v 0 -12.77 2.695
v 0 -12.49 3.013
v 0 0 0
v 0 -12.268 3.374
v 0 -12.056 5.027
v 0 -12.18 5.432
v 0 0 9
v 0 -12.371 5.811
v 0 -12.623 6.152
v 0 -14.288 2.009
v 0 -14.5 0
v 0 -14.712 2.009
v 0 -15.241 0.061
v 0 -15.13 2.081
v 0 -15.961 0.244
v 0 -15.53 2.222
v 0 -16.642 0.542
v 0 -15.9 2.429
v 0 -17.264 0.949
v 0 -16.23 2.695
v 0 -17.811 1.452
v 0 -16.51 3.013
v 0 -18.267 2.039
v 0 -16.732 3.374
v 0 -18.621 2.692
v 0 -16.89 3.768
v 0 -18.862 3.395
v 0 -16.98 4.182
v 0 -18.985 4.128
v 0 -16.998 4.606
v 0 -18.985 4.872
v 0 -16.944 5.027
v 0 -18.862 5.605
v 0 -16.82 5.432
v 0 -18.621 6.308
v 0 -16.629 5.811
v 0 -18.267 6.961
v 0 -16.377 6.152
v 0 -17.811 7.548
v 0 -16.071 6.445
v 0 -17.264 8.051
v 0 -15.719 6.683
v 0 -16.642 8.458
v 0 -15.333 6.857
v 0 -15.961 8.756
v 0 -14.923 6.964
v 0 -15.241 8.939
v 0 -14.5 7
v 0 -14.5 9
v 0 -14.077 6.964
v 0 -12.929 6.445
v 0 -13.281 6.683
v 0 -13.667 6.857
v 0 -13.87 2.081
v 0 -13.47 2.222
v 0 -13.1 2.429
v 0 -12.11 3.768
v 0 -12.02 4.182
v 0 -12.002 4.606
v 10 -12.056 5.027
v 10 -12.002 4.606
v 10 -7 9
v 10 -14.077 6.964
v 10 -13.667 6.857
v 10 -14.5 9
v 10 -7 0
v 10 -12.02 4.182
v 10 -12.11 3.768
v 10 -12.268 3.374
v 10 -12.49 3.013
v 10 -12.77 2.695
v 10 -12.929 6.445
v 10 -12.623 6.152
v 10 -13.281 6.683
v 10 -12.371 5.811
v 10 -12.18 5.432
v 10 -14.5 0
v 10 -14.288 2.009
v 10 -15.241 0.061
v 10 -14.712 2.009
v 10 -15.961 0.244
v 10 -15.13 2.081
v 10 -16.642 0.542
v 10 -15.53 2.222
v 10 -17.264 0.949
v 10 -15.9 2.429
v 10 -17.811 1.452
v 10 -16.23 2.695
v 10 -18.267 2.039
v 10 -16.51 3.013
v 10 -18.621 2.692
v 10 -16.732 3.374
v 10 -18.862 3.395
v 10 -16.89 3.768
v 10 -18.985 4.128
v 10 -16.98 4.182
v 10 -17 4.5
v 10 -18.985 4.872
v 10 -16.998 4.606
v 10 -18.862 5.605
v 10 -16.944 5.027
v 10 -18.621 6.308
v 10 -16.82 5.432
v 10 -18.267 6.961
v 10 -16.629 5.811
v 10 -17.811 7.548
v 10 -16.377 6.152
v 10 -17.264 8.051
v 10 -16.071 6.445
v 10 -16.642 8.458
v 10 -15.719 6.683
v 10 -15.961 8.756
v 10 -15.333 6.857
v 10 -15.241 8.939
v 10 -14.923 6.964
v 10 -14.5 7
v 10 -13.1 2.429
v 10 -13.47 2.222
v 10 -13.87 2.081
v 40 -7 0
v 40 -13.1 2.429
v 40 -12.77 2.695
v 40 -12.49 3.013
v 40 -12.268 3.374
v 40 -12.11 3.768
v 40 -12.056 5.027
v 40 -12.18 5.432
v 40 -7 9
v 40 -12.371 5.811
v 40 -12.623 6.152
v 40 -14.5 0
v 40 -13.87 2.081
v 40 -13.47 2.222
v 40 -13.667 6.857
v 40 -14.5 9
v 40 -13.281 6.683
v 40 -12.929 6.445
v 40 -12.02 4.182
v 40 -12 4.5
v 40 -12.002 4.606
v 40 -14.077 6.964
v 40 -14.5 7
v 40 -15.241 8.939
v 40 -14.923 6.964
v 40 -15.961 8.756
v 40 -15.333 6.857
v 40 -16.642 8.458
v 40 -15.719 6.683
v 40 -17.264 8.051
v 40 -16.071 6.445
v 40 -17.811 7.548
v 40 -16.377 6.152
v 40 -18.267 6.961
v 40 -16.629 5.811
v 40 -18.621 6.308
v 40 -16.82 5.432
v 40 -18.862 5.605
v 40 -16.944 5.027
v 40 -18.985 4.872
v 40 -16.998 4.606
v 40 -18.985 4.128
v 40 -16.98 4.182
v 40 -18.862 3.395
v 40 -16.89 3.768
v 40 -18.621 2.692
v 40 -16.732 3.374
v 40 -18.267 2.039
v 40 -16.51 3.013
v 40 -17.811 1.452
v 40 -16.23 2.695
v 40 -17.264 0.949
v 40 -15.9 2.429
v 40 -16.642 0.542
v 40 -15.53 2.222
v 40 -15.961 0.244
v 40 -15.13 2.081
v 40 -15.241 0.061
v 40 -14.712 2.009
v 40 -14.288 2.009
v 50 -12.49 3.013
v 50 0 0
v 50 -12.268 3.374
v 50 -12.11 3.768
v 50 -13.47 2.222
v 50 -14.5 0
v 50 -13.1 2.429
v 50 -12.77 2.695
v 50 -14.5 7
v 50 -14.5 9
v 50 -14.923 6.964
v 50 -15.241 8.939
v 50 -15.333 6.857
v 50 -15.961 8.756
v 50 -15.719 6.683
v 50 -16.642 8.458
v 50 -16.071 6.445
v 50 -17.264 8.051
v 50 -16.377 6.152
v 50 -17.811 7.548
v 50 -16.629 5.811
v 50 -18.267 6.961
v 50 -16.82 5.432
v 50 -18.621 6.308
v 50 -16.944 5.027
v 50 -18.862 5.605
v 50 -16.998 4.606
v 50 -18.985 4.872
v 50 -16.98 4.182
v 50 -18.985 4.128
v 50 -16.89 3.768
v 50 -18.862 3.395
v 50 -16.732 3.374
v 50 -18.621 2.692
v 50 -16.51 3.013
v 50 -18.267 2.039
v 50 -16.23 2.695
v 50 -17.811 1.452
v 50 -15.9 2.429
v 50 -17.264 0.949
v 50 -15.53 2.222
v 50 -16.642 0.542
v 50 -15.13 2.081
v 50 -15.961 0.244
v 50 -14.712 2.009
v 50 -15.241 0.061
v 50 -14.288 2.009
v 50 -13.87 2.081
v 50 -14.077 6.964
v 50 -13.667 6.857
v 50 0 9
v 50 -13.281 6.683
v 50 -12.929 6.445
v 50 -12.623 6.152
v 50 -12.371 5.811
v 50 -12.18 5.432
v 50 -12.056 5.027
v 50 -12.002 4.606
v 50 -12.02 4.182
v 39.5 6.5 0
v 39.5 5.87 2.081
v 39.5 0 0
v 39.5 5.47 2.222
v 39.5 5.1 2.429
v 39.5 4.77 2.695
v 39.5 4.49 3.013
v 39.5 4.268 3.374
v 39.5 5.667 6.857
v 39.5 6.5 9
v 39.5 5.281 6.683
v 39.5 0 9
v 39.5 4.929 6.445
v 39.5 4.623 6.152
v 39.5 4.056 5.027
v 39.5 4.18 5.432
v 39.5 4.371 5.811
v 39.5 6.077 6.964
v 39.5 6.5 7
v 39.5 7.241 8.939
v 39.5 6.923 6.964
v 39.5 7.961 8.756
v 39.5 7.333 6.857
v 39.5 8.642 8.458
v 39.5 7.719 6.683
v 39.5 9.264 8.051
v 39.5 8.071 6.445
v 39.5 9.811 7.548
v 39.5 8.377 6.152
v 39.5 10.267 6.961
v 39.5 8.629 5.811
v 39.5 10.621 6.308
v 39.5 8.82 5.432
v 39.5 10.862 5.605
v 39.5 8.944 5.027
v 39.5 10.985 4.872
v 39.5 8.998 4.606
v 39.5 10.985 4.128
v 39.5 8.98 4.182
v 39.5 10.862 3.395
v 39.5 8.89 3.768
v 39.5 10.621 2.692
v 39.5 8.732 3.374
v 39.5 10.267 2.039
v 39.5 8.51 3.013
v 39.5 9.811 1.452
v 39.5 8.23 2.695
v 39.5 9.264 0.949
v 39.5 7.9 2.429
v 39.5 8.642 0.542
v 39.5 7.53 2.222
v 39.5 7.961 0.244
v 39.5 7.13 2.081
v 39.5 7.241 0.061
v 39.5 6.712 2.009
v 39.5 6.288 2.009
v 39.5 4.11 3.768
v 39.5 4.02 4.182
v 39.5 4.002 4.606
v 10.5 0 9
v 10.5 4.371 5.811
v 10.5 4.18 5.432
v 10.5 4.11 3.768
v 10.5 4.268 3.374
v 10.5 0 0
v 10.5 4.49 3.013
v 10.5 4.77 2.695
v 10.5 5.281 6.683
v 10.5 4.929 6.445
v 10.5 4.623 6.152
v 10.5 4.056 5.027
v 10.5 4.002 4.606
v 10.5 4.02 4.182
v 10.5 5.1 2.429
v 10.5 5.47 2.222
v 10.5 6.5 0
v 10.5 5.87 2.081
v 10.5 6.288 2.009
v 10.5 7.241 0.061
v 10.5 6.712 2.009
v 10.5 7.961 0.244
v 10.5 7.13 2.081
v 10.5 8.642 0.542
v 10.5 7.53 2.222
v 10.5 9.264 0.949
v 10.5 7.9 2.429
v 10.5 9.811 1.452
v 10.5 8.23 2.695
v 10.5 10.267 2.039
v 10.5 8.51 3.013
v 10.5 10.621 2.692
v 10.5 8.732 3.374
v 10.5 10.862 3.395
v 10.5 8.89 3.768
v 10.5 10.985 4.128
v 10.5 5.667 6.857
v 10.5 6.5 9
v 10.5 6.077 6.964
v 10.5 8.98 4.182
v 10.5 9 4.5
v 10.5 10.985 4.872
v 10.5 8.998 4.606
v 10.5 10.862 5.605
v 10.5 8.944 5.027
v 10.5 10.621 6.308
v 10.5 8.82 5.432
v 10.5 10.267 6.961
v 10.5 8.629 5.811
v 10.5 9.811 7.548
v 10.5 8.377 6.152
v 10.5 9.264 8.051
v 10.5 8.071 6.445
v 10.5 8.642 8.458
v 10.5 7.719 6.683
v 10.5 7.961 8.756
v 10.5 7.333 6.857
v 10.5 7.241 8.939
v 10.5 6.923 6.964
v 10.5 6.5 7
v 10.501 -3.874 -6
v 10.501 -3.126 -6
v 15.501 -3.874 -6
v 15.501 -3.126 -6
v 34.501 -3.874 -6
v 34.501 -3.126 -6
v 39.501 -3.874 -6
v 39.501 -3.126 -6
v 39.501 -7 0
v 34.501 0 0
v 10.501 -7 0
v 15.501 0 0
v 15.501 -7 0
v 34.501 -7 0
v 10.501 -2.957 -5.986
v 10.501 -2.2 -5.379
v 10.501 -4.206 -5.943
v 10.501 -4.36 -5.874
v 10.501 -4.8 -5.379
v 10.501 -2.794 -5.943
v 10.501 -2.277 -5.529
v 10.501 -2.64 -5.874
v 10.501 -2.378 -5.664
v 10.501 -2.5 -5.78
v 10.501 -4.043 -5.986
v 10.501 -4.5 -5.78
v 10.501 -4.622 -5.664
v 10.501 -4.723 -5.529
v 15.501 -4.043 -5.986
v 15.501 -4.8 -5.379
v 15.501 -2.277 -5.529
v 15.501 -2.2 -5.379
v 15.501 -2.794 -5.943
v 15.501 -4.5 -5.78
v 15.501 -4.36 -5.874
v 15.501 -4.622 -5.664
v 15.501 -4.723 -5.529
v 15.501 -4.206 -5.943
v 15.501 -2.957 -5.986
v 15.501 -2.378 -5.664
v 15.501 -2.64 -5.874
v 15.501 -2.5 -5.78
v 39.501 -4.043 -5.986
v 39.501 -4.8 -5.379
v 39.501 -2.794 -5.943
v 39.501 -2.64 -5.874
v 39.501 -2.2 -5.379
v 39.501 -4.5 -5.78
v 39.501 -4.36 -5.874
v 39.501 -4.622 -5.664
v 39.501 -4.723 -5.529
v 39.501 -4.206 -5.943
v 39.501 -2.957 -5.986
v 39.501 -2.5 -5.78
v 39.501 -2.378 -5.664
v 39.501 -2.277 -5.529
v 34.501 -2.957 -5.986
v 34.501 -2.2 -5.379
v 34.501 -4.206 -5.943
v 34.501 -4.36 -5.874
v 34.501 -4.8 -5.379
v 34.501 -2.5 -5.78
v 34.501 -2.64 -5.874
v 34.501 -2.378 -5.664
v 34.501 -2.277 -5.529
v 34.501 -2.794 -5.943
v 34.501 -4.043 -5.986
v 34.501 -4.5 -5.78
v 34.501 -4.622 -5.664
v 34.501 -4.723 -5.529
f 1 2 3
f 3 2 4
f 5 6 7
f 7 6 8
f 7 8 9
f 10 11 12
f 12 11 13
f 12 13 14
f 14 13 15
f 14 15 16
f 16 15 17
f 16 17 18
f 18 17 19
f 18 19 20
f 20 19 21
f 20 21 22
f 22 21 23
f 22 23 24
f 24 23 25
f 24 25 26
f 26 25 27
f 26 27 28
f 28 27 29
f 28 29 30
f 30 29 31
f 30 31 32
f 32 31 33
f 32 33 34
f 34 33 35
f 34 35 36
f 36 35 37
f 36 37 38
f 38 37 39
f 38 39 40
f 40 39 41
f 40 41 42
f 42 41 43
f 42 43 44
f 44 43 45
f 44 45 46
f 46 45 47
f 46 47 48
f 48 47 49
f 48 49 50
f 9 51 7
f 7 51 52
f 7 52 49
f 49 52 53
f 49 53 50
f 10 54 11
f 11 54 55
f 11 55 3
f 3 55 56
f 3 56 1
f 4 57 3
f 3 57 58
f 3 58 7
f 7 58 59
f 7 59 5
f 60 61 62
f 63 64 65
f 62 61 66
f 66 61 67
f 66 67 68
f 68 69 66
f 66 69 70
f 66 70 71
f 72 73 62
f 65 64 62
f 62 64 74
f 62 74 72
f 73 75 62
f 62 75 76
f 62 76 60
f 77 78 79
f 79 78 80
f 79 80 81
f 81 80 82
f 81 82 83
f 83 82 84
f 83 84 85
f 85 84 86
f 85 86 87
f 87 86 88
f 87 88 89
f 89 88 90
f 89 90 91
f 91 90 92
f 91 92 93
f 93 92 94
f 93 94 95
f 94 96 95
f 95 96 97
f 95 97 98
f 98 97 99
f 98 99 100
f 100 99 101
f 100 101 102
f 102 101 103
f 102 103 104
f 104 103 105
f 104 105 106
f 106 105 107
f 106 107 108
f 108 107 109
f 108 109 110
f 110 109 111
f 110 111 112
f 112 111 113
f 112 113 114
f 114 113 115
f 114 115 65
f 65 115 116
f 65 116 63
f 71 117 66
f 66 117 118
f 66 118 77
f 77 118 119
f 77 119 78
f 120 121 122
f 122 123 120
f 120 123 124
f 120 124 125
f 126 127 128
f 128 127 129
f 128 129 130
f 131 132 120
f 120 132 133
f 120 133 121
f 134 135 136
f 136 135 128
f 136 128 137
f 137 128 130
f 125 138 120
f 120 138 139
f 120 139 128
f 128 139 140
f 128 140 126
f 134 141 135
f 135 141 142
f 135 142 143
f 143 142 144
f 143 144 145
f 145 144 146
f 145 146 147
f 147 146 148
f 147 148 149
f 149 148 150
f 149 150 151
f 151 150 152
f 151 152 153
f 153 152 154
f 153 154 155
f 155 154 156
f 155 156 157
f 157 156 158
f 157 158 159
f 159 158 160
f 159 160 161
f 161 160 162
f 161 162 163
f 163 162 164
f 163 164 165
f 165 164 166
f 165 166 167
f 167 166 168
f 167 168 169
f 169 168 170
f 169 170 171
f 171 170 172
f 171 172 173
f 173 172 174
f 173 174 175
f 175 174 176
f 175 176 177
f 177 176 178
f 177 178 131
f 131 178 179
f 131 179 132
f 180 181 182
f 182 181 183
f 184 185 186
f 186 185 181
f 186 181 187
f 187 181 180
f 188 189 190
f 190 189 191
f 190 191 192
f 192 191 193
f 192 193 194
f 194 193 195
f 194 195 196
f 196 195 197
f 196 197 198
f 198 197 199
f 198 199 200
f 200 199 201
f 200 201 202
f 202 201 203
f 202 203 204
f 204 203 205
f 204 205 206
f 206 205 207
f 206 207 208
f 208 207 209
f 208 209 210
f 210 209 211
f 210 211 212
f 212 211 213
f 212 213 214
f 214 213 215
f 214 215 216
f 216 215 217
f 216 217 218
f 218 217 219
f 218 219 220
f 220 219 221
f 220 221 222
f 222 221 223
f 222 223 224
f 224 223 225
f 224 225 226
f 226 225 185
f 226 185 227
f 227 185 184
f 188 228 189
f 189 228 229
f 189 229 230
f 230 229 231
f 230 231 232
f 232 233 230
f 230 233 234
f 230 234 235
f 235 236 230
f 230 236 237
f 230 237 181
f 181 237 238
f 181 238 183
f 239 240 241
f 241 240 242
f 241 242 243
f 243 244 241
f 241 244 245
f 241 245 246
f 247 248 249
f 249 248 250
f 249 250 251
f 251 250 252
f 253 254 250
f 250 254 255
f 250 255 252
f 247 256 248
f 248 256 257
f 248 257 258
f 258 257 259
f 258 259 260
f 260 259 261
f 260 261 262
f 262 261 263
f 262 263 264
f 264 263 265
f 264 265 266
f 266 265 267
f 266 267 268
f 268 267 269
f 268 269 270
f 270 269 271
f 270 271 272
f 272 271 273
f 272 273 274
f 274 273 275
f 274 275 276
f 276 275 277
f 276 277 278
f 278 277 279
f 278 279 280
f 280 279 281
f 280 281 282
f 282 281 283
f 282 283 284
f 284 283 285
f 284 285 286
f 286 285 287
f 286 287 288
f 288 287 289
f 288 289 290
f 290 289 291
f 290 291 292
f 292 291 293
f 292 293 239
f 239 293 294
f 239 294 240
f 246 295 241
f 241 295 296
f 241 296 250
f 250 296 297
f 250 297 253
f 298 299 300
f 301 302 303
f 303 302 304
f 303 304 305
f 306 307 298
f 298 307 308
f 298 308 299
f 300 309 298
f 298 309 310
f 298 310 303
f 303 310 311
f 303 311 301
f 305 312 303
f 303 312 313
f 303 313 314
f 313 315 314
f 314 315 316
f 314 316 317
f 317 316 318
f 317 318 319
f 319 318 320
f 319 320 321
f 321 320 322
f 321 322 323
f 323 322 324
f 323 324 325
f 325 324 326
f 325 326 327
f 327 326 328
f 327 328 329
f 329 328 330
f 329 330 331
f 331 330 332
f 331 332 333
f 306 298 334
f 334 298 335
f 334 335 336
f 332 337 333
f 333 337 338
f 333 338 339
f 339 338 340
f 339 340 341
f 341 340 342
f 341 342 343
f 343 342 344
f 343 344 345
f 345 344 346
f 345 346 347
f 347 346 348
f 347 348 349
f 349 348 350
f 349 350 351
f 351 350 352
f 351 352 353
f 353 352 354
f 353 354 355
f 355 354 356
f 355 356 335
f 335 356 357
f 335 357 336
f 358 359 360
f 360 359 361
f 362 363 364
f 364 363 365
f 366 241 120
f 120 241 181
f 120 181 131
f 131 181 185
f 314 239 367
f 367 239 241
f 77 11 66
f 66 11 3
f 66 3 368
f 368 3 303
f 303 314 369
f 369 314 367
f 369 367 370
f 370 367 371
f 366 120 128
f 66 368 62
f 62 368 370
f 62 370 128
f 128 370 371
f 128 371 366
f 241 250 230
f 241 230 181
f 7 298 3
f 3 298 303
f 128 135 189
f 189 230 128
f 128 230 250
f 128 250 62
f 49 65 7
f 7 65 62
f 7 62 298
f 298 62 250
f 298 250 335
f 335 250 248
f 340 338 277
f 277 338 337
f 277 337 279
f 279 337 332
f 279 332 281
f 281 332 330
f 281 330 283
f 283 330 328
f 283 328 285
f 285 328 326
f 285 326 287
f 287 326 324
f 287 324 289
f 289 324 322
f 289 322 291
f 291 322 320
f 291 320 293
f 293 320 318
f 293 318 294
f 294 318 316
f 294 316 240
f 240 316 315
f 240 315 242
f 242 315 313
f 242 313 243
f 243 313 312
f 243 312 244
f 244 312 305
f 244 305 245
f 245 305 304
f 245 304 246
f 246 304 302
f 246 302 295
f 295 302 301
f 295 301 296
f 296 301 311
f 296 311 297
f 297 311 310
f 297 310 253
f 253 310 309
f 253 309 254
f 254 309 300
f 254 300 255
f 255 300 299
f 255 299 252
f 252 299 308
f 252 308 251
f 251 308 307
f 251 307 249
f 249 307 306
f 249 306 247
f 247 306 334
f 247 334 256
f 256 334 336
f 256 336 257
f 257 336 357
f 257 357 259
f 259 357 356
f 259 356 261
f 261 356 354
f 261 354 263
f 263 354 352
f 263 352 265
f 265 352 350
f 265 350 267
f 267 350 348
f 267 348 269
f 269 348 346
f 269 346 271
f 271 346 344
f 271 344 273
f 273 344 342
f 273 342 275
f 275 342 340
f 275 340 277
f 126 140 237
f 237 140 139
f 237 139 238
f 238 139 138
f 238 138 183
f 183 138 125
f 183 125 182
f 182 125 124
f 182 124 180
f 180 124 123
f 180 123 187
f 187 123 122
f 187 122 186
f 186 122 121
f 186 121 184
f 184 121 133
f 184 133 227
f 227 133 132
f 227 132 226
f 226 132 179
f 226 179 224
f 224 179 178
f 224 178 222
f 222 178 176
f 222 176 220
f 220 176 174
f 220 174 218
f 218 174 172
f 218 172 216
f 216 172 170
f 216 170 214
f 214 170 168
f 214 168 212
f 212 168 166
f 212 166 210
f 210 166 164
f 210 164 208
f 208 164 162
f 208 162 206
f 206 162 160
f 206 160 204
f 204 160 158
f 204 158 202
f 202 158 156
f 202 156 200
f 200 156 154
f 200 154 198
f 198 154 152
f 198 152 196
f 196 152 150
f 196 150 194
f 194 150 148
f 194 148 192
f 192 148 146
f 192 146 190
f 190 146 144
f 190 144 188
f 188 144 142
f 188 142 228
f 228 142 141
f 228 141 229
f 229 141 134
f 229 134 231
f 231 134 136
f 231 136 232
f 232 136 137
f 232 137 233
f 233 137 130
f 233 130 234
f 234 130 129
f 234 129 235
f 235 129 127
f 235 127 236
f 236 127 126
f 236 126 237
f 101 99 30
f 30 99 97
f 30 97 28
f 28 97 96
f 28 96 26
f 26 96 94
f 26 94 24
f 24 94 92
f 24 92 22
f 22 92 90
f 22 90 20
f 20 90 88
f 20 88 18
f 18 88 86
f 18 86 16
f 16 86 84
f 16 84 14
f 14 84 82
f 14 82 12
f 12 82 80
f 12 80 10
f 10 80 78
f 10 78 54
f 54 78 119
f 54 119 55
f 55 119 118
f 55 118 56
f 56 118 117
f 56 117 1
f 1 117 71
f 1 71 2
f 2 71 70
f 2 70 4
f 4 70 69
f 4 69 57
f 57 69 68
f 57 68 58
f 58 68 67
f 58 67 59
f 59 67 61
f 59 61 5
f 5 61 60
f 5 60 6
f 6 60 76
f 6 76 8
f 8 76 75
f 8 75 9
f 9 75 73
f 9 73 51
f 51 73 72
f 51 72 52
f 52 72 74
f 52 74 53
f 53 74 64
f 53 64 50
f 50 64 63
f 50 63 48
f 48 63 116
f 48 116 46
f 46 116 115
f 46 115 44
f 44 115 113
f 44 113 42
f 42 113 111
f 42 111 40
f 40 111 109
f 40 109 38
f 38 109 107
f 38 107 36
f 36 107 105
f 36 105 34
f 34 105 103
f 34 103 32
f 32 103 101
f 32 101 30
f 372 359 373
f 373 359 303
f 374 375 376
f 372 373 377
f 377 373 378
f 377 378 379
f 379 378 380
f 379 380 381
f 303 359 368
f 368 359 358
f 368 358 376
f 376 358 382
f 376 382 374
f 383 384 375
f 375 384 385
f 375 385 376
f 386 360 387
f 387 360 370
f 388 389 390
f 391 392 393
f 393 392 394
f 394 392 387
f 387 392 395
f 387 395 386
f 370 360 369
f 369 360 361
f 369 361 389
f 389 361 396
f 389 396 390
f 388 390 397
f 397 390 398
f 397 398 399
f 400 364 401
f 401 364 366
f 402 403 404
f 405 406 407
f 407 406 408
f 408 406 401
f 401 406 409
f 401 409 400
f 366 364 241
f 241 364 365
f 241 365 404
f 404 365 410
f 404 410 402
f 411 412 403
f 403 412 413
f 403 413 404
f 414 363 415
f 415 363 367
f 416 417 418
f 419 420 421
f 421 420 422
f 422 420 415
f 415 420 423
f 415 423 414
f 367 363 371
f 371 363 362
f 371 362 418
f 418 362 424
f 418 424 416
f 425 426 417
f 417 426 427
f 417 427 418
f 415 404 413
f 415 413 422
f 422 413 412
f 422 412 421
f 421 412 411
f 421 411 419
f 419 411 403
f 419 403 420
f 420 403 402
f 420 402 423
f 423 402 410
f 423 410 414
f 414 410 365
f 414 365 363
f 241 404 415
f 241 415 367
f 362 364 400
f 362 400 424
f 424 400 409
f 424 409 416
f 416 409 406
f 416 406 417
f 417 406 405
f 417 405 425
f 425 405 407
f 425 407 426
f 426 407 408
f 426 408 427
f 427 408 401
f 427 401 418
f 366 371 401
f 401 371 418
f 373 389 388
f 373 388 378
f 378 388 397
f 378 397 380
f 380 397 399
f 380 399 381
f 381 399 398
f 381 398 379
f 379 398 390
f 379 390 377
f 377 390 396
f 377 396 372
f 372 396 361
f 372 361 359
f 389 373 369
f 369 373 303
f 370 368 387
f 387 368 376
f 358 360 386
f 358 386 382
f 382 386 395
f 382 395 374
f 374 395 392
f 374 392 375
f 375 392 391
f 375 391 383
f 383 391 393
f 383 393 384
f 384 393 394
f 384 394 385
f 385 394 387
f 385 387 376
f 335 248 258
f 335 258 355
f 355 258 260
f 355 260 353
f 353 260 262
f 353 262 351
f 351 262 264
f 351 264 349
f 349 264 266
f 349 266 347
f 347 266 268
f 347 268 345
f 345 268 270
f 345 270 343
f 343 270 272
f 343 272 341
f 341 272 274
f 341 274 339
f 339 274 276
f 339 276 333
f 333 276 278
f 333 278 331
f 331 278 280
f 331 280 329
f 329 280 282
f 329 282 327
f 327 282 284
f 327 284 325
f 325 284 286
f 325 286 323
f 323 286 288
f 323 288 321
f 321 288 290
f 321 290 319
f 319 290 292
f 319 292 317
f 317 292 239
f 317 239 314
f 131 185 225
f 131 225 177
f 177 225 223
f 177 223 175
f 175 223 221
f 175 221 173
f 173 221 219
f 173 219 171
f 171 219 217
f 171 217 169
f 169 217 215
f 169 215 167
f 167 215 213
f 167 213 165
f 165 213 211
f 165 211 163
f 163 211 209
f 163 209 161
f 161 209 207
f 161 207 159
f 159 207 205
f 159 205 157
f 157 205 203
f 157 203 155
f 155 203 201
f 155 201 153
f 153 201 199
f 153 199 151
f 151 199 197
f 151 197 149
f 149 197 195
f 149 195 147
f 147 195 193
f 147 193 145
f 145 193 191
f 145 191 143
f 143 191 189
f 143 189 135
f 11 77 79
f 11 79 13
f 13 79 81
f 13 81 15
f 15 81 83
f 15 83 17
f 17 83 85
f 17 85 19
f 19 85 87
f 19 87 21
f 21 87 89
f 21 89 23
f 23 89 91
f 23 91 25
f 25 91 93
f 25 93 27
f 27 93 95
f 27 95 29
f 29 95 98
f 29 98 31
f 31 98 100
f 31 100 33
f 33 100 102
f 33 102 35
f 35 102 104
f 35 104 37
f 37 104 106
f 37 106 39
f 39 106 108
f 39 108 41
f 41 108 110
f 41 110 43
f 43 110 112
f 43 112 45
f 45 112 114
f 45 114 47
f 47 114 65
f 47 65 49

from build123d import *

# Parameters (mm, degrees)
BOSS_EXTRUDE1_DEPTH = 9
SKETCH2_R           = 2.5
CUT_EXTRUDE1_DEPTH  = 56
SKETCH5_W           = 5
SKETCH5_H           = 7
BOSS_EXTRUDE2_DEPTH = 6
CUT_EXTRUDE3_DEPTH  = 30
CUT_EXTRUDE4_DEPTH  = 60


with BuildPart() as part:
    # Sketch1 → Boss-Extrude1 (new body)
    with BuildSketch(Plane.XY):
        Polygon((0, 0), (10.5, 0), (10.5, 11), (39.5, 11), (39.5, 0), (50, 0), (50, -19), (40, -19), (40, -7), (10, -7), (10, -19), (0, -19), align=None)
    extrude(amount=BOSS_EXTRUDE1_DEPTH)

    # Sketch2 → Cut-Extrude1 (cut)
    with BuildSketch(Plane.ZY):
        with Locations((4.5, -14.5)):
            Circle(SKETCH2_R)
        with Locations((4.5, 6.5)):
            Circle(SKETCH2_R)
    extrude(amount=-CUT_EXTRUDE1_DEPTH, mode=Mode.SUBTRACT)

    # Sketch5 → Boss-Extrude2 (add)
    with BuildSketch(Plane(origin=(0, 0, 0), x_dir=(-1, 0, 0), z_dir=(0, 0, -1))):
        with Locations((-13.001, -3.5)):
            Rectangle(SKETCH5_W, SKETCH5_H)
        with Locations((-37.001, -3.5)):
            Rectangle(SKETCH5_W, SKETCH5_H)
    extrude(amount=BOSS_EXTRUDE2_DEPTH)

    # Sketch6 → Cut-Extrude3 (cut)
    with BuildSketch(Plane(origin=(39.501, 0, 0), x_dir=(0, 0, -1), z_dir=(1, 0, 0))):
        with BuildLine():
            Line((0, -7), (5.378584213, -4.8))
            ThreePointArc((5.378584213, -4.8), (5.830236175, -4.431844931), (6, -3.87443315))
            Line((6, -3.87443315), (6, -3.12556685))
            ThreePointArc((6, -3.12556685), (5.830236175, -2.568155069), (5.378584213, -2.2))
            Line((5.378584213, -2.2), (0, 0))
            Line((0, 0), (0, 0.711055657))
            Line((0, 0.711055657), (7.382706711, 0.711055657))
            Line((7.382706711, 0.711055657), (7.382706711, -8.433389186))
            Line((7.382706711, -8.433389186), (0, -8.433389186))
            Line((0, -8.433389186), (0, -7))
        make_face()
    extrude(amount=-CUT_EXTRUDE3_DEPTH, mode=Mode.SUBTRACT)

    # Sketch7 → Cut-Extrude4 (cut)
    with BuildSketch(Plane(origin=(50, 0, 0), x_dir=(0, 0, -1), z_dir=(1, 0, 0))):
        with BuildLine():
            Line((0, 6.5), (1.728310858, 6.5))
            Line((1.728310858, 6.5), (1.728310858, 12.31373859))
            Line((1.728310858, 12.31373859), (-10.493151676, 12.31373859))
            Line((-10.493151676, 12.31373859), (-10.493151676, 4.742580982))
            Line((-10.493151676, 4.742580982), (-9, 6.5))
            ThreePointArc((-9, 6.5), (-4.5, 11), (0, 6.5))
        make_face()
        with BuildLine():
            Line((0, -14.5), (1.22869132, -14.5))
            Line((1.22869132, -14.5), (1.22869132, -21.122338154))
            Line((1.22869132, -21.122338154), (-10.493151676, -21.122338154))
            Line((-10.493151676, -21.122338154), (-10.493151676, -14.5))
            Line((-10.493151676, -14.5), (-9, -14.5))
            ThreePointArc((-9, -14.5), (-4.5, -19), (0, -14.5))
        make_face()
    extrude(amount=-CUT_EXTRUDE4_DEPTH, mode=Mode.SUBTRACT)


solid = part.part
